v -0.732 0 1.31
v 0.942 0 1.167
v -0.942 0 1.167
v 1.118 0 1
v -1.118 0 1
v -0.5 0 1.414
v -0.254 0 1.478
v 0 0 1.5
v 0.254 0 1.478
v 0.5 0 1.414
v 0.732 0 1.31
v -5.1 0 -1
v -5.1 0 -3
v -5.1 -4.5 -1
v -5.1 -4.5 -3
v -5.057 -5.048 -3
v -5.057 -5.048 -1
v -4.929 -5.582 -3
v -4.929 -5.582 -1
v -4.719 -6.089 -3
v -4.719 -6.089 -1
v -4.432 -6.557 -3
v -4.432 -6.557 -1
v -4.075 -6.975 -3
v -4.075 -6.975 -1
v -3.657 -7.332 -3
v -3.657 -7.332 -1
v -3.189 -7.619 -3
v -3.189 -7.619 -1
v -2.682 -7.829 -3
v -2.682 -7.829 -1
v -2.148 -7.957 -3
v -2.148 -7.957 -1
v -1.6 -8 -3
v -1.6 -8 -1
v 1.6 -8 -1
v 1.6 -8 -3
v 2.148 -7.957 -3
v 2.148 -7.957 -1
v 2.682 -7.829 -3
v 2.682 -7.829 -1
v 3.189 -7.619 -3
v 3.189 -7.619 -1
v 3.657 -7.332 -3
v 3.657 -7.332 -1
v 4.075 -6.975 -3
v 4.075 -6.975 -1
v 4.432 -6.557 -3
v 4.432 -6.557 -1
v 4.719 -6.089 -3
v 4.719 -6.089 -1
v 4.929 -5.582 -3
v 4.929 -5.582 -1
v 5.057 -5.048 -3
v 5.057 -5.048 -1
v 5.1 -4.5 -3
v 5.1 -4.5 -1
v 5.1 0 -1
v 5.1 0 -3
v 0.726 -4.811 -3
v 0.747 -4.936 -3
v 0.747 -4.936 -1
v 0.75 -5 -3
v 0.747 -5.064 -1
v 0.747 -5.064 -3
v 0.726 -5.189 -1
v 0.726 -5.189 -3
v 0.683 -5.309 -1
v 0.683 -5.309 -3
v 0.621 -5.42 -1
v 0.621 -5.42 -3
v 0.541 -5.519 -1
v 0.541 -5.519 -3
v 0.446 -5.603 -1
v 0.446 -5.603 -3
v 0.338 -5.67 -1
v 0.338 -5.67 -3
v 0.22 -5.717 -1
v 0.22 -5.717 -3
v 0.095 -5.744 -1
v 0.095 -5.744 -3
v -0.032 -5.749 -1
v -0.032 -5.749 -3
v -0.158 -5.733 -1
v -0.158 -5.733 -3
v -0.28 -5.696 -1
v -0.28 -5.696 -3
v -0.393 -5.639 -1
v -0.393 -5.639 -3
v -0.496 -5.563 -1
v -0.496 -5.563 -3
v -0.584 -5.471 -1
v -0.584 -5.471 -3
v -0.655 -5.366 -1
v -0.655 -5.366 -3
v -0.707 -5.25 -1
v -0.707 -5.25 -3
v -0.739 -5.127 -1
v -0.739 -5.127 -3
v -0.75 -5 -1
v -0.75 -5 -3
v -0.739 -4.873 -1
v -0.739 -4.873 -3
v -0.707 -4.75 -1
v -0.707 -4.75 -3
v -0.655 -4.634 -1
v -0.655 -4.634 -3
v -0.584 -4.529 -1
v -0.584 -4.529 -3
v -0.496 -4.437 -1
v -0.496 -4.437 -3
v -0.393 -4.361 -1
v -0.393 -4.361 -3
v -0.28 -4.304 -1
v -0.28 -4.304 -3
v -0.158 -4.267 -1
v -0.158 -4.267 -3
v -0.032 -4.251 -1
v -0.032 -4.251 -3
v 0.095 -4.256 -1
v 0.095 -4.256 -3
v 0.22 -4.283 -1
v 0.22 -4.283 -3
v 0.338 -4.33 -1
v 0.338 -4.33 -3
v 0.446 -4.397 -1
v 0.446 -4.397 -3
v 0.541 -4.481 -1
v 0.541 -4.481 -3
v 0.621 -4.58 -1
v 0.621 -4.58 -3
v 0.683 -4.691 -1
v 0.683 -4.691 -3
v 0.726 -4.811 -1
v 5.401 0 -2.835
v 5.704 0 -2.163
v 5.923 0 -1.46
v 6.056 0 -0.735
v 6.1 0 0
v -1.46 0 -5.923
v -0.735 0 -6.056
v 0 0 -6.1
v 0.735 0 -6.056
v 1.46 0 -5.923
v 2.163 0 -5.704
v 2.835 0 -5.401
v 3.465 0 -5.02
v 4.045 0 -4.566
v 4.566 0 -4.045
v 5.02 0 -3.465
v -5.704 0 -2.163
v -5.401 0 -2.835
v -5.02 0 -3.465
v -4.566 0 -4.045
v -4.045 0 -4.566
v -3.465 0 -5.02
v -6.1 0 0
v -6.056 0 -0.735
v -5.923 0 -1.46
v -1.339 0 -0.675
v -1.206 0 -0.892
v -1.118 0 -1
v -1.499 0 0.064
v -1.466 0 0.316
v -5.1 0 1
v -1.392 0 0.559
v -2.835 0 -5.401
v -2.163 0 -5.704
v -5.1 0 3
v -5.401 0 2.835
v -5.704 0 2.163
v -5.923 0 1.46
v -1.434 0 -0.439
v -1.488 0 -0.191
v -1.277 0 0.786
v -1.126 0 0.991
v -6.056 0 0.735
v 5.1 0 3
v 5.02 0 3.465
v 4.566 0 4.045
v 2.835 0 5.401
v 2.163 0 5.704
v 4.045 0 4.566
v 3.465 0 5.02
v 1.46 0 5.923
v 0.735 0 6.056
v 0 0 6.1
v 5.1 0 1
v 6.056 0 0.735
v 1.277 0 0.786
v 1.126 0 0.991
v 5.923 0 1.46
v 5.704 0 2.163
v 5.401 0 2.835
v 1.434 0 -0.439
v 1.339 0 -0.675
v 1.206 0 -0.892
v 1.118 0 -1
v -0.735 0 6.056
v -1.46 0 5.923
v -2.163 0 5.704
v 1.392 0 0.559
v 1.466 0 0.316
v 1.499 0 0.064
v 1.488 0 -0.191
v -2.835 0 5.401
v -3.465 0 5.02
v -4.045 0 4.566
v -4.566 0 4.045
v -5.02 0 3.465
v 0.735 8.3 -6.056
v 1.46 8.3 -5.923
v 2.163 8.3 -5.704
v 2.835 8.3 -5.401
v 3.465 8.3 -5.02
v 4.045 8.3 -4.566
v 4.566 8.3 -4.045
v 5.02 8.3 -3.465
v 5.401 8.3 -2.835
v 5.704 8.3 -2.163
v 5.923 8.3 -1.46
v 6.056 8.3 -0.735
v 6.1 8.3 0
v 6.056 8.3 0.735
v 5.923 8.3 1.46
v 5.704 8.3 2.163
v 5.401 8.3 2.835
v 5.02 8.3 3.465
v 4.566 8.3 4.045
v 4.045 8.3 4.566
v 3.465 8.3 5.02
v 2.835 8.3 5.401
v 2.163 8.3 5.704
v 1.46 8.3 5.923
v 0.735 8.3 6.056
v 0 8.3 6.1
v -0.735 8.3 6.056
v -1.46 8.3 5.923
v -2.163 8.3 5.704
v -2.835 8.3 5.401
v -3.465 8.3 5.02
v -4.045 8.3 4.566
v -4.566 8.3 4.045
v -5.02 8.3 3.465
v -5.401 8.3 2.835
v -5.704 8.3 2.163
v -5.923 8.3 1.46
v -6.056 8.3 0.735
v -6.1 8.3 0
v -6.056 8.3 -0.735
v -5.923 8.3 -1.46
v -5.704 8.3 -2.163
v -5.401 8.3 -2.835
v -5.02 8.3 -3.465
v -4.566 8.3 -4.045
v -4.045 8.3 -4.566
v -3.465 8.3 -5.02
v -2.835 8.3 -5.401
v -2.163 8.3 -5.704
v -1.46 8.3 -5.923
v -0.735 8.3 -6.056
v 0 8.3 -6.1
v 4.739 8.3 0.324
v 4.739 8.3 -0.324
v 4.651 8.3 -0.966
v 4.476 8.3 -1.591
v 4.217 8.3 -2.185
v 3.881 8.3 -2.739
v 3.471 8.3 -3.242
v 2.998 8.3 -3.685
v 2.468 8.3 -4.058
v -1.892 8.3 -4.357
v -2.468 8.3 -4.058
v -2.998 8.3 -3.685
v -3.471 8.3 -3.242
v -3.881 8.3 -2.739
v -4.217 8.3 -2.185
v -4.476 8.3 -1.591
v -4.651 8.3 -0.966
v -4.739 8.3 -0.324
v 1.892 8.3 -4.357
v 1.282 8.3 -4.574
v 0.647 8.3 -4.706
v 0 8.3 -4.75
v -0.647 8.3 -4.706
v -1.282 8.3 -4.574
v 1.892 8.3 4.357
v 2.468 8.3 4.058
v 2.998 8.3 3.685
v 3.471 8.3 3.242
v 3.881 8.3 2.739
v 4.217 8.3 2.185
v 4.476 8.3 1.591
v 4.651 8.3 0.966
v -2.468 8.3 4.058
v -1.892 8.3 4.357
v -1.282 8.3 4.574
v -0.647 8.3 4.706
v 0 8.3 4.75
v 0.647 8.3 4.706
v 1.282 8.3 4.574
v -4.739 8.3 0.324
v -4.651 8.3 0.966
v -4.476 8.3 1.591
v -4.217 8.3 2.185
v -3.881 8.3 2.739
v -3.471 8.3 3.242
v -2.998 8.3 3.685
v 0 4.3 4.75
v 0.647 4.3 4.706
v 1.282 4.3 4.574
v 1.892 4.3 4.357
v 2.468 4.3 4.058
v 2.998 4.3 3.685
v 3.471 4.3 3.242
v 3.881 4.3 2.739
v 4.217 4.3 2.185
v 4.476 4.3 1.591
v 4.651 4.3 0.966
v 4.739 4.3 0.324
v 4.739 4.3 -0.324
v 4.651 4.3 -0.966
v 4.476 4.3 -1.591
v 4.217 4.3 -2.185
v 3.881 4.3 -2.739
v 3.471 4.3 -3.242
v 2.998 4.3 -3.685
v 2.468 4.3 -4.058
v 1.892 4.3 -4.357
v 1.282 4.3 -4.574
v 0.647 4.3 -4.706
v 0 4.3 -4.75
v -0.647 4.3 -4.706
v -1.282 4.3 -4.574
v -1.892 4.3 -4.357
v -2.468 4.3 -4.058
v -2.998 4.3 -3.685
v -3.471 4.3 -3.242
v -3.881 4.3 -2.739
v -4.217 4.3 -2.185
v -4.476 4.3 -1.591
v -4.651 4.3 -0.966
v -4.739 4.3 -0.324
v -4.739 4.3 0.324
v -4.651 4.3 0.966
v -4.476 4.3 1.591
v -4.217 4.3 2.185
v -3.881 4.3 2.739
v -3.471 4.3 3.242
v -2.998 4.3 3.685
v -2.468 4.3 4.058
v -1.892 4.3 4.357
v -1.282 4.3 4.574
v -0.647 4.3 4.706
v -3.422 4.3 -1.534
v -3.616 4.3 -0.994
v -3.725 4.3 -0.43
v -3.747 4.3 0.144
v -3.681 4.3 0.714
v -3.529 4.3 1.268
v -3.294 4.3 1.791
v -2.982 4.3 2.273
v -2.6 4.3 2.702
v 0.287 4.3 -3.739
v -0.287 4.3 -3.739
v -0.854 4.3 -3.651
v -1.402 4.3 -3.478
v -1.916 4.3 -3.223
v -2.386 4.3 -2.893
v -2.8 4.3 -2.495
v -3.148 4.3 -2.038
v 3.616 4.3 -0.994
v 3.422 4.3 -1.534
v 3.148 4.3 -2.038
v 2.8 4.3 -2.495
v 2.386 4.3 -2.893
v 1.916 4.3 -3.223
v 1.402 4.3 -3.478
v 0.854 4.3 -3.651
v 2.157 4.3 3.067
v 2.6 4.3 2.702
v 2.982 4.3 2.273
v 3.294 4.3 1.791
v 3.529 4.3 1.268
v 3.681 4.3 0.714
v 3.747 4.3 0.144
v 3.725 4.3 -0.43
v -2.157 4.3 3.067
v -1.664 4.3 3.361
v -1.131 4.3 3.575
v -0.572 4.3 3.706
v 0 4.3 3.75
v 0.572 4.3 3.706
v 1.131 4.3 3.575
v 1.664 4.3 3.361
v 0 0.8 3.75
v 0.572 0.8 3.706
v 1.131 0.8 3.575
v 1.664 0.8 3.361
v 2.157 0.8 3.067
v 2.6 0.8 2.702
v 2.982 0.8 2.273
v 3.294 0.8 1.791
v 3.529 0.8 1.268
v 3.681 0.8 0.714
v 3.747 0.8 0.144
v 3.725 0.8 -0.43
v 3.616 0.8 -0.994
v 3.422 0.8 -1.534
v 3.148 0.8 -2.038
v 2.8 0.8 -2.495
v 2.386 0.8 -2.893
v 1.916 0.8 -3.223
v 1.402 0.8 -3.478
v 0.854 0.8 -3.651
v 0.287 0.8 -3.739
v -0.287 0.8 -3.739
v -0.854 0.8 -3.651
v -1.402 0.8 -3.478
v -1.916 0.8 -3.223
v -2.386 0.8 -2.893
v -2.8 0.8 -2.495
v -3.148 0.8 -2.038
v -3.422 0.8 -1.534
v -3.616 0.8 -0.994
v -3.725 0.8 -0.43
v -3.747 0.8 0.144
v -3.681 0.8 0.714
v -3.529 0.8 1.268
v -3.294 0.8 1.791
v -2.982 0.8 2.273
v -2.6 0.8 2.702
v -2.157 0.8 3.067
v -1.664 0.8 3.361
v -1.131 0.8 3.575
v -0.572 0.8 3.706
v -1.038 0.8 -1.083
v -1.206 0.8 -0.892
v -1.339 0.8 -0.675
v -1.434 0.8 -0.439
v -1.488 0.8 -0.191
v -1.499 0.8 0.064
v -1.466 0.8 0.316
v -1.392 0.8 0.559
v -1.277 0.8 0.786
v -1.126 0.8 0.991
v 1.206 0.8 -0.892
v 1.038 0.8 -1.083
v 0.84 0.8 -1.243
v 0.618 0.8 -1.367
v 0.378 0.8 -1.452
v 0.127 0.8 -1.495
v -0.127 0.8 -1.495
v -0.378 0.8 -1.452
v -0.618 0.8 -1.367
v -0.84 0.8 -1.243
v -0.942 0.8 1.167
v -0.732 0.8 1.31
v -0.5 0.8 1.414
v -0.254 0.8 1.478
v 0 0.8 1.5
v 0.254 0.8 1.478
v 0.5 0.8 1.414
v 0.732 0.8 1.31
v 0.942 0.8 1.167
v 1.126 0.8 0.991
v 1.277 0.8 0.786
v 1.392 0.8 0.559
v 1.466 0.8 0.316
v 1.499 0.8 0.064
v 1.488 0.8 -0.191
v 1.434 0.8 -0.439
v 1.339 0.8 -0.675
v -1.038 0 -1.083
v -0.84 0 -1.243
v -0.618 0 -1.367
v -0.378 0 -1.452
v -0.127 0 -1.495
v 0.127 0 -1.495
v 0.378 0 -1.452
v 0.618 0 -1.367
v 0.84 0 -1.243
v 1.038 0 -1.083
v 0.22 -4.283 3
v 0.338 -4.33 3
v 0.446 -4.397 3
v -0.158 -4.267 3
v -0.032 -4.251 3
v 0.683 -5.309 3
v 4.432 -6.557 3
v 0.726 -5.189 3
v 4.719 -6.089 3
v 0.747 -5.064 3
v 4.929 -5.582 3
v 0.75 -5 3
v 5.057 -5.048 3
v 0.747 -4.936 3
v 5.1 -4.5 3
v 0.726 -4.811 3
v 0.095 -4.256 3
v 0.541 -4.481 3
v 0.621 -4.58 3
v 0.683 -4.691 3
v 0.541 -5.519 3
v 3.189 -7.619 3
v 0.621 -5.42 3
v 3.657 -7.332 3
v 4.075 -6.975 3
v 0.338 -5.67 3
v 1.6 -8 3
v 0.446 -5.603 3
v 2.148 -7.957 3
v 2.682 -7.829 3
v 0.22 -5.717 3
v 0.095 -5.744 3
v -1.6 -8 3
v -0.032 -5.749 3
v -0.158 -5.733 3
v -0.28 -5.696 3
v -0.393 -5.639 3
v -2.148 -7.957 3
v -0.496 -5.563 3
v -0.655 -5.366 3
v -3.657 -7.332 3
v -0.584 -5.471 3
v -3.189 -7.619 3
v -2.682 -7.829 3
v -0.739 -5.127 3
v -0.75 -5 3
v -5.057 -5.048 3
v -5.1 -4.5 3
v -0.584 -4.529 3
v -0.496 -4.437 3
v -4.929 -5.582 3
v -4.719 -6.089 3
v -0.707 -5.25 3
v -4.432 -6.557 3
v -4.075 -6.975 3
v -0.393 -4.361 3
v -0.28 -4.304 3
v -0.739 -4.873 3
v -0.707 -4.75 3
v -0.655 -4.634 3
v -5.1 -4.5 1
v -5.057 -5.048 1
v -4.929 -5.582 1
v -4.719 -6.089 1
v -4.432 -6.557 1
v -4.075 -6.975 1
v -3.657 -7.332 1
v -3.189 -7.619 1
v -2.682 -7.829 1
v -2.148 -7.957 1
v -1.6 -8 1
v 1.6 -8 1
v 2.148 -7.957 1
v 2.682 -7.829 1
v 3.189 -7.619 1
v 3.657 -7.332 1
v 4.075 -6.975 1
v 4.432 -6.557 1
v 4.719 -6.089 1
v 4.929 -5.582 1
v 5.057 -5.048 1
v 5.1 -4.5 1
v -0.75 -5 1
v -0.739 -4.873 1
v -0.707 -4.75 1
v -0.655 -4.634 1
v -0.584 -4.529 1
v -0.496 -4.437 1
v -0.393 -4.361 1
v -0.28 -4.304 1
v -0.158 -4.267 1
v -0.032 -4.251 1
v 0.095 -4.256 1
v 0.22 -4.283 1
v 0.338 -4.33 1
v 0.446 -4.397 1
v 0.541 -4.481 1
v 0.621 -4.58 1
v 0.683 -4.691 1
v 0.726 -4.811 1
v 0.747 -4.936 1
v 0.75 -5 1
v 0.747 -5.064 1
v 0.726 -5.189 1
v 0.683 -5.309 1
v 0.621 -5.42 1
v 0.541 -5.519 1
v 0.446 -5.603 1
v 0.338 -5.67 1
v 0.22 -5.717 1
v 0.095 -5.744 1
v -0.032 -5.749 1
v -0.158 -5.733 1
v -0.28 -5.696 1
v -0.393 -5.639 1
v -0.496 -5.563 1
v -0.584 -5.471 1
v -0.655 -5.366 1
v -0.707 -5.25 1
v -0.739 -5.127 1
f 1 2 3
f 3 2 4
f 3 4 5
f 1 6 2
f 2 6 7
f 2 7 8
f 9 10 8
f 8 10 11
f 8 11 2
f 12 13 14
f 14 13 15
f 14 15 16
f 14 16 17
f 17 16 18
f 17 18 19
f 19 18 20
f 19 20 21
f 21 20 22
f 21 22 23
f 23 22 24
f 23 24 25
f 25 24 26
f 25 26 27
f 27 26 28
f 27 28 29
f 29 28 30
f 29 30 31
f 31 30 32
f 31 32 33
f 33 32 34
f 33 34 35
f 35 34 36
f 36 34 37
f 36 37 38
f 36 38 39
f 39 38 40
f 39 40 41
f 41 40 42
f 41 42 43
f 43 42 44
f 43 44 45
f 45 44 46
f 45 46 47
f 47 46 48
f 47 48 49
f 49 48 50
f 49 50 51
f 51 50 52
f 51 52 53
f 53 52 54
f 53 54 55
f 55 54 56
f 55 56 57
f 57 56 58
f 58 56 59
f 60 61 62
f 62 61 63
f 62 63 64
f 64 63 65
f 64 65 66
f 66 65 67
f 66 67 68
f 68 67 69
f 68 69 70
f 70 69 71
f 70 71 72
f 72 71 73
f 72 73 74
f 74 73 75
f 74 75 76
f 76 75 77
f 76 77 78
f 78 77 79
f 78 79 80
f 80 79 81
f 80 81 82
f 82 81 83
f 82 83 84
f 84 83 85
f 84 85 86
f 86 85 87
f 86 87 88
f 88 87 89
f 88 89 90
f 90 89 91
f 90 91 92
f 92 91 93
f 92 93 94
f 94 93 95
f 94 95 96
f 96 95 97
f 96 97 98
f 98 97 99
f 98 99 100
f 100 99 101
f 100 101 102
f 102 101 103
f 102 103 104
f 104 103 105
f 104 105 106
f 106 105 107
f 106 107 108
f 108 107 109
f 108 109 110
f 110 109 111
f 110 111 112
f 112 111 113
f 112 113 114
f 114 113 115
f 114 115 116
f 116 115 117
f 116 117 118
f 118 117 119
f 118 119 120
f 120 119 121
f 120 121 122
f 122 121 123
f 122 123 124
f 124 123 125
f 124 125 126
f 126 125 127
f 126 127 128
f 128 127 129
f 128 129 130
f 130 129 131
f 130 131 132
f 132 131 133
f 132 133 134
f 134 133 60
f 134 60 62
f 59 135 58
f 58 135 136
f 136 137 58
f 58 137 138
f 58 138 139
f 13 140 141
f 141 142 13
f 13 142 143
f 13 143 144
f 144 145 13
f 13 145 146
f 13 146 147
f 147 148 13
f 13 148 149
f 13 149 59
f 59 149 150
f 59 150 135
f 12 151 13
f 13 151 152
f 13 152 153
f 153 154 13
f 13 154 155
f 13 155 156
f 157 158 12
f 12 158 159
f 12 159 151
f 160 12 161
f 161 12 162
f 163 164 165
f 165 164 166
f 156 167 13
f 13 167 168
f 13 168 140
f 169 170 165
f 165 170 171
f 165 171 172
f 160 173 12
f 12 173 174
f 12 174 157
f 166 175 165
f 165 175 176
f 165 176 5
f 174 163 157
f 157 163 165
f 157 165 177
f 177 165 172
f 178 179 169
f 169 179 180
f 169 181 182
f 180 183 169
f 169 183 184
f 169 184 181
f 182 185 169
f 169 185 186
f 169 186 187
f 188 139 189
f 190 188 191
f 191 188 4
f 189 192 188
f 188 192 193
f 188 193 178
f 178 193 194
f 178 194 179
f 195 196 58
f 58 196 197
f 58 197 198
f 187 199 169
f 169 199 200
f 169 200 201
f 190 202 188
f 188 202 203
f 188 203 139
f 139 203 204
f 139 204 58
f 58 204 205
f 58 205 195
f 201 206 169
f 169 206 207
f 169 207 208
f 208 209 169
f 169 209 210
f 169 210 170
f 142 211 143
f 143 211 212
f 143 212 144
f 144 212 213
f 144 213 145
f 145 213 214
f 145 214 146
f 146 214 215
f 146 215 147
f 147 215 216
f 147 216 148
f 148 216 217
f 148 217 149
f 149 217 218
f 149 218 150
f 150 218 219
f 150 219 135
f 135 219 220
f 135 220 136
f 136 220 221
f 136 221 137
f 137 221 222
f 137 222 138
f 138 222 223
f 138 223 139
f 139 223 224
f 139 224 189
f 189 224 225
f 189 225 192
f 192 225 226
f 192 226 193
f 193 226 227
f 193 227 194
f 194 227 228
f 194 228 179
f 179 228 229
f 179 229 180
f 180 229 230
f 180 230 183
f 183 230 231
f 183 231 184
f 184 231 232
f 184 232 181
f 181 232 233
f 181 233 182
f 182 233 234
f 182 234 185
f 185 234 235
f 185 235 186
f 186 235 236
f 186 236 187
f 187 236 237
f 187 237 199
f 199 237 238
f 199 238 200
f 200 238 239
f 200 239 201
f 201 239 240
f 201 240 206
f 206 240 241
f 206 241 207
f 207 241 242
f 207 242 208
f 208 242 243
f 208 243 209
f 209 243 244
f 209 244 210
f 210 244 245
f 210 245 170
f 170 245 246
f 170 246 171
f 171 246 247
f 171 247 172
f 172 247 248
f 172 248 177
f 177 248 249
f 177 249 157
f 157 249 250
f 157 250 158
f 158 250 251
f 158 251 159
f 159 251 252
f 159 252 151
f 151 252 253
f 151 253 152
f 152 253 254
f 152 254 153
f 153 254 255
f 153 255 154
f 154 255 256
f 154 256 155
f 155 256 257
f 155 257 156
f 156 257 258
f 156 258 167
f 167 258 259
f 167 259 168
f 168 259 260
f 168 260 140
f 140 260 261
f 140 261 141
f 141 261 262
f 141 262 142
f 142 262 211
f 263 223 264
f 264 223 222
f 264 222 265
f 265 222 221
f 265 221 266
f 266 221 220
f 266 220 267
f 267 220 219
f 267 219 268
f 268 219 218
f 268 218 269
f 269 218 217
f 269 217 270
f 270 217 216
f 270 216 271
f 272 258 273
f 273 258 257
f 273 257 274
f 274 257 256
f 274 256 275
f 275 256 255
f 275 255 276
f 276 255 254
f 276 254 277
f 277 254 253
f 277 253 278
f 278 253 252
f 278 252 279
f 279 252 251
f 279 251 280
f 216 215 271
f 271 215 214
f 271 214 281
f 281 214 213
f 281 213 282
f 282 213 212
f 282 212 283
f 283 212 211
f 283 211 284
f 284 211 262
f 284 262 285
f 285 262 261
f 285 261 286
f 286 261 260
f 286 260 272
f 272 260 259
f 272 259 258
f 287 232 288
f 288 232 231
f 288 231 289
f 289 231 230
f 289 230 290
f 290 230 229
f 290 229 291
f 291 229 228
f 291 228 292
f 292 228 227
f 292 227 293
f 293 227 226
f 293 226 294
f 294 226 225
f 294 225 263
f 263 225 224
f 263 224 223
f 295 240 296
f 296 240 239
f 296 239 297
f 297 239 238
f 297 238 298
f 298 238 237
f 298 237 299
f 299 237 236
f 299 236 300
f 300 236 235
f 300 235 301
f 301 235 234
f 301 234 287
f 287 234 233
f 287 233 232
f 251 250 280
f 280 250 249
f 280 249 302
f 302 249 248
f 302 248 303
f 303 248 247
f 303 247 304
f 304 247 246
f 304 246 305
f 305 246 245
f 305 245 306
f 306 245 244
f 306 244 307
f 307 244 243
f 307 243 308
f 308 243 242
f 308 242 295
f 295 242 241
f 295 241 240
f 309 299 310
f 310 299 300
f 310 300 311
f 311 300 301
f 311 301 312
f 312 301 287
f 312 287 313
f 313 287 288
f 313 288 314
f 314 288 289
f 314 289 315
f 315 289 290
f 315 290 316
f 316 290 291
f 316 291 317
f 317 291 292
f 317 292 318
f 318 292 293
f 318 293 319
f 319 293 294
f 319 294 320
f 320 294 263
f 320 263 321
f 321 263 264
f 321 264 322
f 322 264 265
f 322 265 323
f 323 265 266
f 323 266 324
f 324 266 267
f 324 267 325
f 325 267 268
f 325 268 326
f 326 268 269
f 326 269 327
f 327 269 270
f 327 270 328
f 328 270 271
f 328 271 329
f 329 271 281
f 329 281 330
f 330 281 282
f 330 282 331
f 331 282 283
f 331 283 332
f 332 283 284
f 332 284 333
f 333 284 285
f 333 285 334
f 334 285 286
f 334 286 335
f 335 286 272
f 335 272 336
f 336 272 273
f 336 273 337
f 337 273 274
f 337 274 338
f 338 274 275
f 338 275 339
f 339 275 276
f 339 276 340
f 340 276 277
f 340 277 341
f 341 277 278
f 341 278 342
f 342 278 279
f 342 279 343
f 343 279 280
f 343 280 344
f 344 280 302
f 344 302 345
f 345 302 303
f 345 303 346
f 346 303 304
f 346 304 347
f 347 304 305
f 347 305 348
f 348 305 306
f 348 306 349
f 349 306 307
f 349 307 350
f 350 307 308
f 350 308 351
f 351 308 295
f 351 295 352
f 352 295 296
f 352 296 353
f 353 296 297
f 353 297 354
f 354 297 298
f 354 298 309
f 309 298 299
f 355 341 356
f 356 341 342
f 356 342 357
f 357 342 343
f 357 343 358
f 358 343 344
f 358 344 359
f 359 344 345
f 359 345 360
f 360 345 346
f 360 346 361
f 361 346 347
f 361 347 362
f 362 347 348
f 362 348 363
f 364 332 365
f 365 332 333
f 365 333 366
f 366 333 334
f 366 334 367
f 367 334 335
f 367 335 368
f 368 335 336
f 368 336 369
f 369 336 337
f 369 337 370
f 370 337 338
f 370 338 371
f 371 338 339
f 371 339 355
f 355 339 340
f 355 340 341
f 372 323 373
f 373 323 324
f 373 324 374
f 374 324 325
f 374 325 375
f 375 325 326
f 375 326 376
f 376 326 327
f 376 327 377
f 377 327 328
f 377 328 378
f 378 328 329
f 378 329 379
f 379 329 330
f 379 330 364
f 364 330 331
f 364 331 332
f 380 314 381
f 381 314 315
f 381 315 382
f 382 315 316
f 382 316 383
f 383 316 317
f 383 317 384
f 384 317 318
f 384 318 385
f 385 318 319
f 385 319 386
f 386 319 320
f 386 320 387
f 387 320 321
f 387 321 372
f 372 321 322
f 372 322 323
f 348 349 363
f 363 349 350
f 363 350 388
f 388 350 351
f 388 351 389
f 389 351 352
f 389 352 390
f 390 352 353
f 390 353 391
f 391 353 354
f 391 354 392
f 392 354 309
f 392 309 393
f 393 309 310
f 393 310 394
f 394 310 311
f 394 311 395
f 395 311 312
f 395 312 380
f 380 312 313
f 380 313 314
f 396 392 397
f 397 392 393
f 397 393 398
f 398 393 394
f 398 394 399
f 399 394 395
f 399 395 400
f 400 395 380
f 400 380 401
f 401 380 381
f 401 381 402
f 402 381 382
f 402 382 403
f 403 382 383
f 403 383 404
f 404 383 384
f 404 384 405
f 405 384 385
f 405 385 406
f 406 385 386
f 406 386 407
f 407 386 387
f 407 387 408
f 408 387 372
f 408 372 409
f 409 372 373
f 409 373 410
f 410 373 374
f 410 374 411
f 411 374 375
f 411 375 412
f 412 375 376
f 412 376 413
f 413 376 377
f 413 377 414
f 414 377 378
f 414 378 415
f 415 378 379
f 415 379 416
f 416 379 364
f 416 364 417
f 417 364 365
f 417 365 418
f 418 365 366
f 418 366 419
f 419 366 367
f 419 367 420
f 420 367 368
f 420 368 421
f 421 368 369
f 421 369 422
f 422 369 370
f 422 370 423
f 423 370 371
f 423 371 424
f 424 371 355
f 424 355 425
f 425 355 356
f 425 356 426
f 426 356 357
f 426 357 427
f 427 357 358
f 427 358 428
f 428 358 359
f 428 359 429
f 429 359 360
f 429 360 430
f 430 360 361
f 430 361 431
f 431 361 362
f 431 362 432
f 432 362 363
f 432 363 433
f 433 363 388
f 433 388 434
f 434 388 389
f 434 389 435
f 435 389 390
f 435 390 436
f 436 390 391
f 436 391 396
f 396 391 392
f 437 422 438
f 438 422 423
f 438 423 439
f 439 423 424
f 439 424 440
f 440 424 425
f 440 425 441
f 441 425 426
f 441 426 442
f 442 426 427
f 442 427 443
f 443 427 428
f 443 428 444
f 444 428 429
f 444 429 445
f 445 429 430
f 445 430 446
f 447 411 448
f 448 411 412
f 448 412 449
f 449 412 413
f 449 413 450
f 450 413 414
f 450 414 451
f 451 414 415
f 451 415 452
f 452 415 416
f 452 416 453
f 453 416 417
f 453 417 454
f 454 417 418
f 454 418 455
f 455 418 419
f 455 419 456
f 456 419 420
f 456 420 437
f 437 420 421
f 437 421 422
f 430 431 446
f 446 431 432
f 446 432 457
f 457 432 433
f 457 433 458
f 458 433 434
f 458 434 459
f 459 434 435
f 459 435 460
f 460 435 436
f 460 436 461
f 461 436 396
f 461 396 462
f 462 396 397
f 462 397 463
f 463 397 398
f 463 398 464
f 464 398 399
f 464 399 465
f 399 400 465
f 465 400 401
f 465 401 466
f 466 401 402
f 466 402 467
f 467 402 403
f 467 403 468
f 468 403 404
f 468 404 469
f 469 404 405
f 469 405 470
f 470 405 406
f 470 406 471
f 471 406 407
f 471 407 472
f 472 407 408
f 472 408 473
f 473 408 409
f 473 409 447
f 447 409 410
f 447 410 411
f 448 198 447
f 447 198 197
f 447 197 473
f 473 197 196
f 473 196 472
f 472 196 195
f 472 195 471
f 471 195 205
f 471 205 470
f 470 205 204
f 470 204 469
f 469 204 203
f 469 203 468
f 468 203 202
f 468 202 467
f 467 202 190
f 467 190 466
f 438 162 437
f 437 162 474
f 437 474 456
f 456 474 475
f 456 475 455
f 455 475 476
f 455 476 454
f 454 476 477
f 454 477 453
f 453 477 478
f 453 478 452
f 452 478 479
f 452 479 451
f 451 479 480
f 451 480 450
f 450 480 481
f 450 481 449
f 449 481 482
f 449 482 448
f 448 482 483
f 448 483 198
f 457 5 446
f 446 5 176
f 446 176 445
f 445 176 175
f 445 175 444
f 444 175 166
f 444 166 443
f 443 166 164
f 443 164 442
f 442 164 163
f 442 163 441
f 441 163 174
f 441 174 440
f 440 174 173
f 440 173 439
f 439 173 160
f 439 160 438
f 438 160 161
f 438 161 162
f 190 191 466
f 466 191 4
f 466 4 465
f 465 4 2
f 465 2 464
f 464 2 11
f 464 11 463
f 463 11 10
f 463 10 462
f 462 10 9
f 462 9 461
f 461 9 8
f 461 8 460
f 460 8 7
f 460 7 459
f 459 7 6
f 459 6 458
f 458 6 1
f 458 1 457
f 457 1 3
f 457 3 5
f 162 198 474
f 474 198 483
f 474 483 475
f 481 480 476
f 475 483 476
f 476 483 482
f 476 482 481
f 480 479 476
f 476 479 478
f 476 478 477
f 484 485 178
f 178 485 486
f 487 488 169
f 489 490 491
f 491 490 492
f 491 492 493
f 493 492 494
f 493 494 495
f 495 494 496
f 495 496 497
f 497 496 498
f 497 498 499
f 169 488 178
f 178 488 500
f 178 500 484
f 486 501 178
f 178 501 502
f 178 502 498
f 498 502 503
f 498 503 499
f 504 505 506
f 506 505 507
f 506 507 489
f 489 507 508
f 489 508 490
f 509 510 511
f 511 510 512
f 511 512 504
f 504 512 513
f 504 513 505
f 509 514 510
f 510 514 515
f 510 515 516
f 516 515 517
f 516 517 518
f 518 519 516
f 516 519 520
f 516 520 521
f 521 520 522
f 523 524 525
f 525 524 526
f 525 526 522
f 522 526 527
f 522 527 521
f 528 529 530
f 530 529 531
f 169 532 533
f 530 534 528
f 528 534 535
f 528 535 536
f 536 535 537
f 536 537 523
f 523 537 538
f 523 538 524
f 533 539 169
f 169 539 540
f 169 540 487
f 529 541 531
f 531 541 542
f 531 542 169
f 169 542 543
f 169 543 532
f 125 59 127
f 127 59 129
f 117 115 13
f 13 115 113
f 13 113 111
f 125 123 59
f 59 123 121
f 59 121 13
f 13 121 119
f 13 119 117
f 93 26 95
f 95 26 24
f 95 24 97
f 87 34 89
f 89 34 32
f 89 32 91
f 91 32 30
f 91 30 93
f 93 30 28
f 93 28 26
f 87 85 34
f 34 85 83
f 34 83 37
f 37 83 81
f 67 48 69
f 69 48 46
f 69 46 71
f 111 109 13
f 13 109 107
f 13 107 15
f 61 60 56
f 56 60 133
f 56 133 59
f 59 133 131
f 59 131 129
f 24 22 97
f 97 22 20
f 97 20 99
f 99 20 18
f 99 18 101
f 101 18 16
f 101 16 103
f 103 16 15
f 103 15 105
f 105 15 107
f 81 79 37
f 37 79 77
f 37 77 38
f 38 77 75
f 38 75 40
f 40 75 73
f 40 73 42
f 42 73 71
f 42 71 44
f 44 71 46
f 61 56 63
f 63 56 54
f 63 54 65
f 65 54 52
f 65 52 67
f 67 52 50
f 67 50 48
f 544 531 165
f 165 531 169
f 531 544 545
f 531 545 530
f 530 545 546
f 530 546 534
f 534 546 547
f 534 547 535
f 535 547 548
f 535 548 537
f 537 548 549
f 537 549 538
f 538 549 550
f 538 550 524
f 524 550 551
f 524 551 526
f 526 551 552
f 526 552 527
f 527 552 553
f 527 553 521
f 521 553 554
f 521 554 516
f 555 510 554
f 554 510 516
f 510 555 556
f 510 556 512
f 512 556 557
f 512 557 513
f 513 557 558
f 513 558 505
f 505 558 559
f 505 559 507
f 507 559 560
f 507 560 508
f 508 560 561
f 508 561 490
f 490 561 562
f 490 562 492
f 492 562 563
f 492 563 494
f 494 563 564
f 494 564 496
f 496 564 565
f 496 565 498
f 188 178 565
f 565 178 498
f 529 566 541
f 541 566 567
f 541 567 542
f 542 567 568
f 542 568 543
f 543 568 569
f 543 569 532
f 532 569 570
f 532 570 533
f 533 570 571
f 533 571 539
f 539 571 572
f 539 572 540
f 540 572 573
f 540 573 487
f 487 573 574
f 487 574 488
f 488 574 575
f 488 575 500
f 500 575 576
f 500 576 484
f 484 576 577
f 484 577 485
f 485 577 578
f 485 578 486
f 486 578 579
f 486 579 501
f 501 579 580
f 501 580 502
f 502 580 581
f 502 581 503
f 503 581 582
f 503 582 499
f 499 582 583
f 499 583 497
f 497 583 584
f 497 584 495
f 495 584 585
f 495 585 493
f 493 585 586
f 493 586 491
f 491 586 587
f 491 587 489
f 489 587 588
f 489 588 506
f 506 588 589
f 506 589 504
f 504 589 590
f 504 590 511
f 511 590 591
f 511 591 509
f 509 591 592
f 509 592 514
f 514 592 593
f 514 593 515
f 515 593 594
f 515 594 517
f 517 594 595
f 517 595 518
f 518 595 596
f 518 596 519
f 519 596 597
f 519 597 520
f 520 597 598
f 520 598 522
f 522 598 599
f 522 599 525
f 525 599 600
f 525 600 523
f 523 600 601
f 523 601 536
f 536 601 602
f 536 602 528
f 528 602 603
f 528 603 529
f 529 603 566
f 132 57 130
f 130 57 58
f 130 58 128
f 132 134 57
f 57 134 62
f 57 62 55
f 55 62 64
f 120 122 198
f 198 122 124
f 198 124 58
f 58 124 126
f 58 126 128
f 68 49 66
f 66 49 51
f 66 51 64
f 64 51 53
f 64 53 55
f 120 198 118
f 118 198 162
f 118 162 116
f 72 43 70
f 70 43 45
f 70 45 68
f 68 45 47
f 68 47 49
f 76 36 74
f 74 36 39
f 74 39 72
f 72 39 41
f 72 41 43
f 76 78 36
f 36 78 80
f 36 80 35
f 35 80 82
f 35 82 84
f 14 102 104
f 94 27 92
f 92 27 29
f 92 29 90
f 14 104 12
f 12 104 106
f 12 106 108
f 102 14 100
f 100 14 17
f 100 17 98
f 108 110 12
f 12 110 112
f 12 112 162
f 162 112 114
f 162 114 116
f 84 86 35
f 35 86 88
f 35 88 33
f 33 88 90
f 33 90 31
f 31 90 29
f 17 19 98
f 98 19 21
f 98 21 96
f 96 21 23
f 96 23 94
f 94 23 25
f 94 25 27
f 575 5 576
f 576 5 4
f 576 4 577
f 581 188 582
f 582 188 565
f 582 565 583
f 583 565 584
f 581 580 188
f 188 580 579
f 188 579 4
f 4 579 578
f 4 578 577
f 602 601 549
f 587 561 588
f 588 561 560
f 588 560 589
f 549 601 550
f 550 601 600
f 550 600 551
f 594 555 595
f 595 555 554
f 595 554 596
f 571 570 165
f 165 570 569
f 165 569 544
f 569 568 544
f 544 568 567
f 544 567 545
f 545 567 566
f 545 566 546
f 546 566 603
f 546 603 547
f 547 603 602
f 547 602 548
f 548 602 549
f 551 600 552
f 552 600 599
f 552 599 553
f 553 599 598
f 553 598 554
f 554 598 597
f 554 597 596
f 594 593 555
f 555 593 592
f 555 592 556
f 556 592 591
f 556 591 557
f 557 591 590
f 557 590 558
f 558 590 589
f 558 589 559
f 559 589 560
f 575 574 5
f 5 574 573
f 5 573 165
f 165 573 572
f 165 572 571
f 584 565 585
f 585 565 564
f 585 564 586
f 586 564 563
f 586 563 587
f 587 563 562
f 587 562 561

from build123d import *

# Parameters (mm, degrees)
SKETCH_1_R          = 6.1
EXTRUDE_1_DEPTH     = 8.3
SKETCH_2_R          = 4.75
CUT_EXTRUDE_1_DEPTH = 4
SKETCH_3_R          = 3.75
CUT_EXTRUDE_2_DEPTH = 3.5
SKETCH_4_R          = 1.5
CUT_EXTRUDE_3_DEPTH = 4
EXTRUDE_3_DEPTH     = 3
SKETCH_6_R          = 9.011135206
SKETCH_6_R_2        = 6.1
CUT_EXTRUDE_4_DEPTH = 32
SKETCH_7_R          = 0.5
CUT_EXTRUDE_6_DEPTH = 12
SKETCH_8_W          = 2
SKETCH_8_H          = 6.97178126
CUT_EXTRUDE_7_DEPTH = 10
SKETCH_9_W          = 7.844147965
SKETCH_9_H          = 6.877415643
CUT_EXTRUDE_8_DEPTH = 10
SKETCH_10_R         = 0.75
EXTRUDE_4_DEPTH     = 3
SKETCH_11_W         = 15.692438898
SKETCH_11_H         = 2
CUT_EXTRUDE_9_DEPTH = 8


with BuildPart() as part:
    # 草图1 → 凸台-拉伸1 (new body)
    with BuildSketch(Plane(origin=(0, 0, 0), x_dir=(1, 0, 0), z_dir=(0, 1, 0))):
        Circle(SKETCH_1_R)
    extrude(amount=EXTRUDE_1_DEPTH)

    # 草图2 → 切除-拉伸1 (cut)
    with BuildSketch(Plane(origin=(0, 8.3, 0), x_dir=(1, 0, 0), z_dir=(0, 1, 0))):
        Circle(SKETCH_2_R)
    extrude(amount=-CUT_EXTRUDE_1_DEPTH, mode=Mode.SUBTRACT)

    # 草图3 → 切除-拉伸2 (cut)
    with BuildSketch(Plane(origin=(0, 4.3, 0), x_dir=(1, 0, 0), z_dir=(0, 1, 0))):
        Circle(SKETCH_3_R)
    extrude(amount=-CUT_EXTRUDE_2_DEPTH, mode=Mode.SUBTRACT)

    # 草图4 → 切除-拉伸3 (cut)
    with BuildSketch(Plane(origin=(0, 0.8, 0), x_dir=(1, 0, 0), z_dir=(0, 1, 0))):
        Circle(SKETCH_4_R)
    extrude(amount=-CUT_EXTRUDE_3_DEPTH, mode=Mode.SUBTRACT)

    # 草图5 → 凸台-拉伸3 (add, symmetric)
    with BuildSketch(Plane.XY):
        with BuildLine():
            Line((-6.1, 0), (-2.1, 0))
            Line((-2.1, 0), (-2.1, -4.1))
            ThreePointArc((-2.1, -4.1), (-2.656497116, -5.443502884), (-4, -6))
            Line((-4, -6), (-4.2, -6))
            ThreePointArc((-4.2, -6), (-5.543502884, -5.443502884), (-6.1, -4.1))
            Line((-6.1, -4.1), (-6.1, 0))
        make_face()
    extrude(amount=EXTRUDE_3_DEPTH, both=True)

    # 草图6 → 切除-拉伸4 (cut)
    with BuildSketch(Plane(origin=(0, 8.3, 0), x_dir=(1, 0, 0), z_dir=(0, 1, 0))):
        Circle(SKETCH_6_R)
        Circle(SKETCH_6_R_2, mode=Mode.SUBTRACT)
    extrude(amount=-CUT_EXTRUDE_4_DEPTH, mode=Mode.SUBTRACT)

    # 草图7 → 切除-拉伸6 (cut)
    with BuildSketch(Plane.XY.offset(3)):
        with Locations((-4.1, -3.8)):
            Circle(SKETCH_7_R)
    extrude(amount=-CUT_EXTRUDE_6_DEPTH, mode=Mode.SUBTRACT)

    # 草图8 → 切除-拉伸7 (cut)
    with BuildSketch(Plane(origin=(-2.1, 0, 0), x_dir=(0, 0, -1), z_dir=(1, 0, 0))):
        with Locations((0, -3.48589063)):
            Rectangle(SKETCH_8_W, SKETCH_8_H)
    extrude(amount=-CUT_EXTRUDE_7_DEPTH, mode=Mode.SUBTRACT)

    # 草图9 → 切除-拉伸8 (cut)
    with BuildSketch(Plane(origin=(0, 0, -3), x_dir=(-1, 0, 0), z_dir=(0, 0, -1))):
        with Locations((6.022073983, -3.438707822)):
            Rectangle(SKETCH_9_W, SKETCH_9_H)
    extrude(amount=-CUT_EXTRUDE_8_DEPTH, mode=Mode.SUBTRACT)

    # 草图10 → 凸台-拉伸4 (add, symmetric)
    with BuildSketch(Plane.XY):
        with BuildLine():
            Line((-5.1, 0), (5.1, 0))
            Line((5.1, 0), (5.1, -4.5))
            ThreePointArc((5.1, -4.5), (4.074873734, -6.974873734), (1.6, -8))
            Line((1.6, -8), (-1.6, -8))
            ThreePointArc((-1.6, -8), (-4.074873734, -6.974873734), (-5.1, -4.5))
            Line((-5.1, -4.5), (-5.1, 0))
        make_face()
        with Locations((0, -5)):
            Circle(SKETCH_10_R, mode=Mode.SUBTRACT)
    extrude(amount=EXTRUDE_4_DEPTH, both=True)

    # 草图11 → 切除-拉伸9 (cut)
    with BuildSketch(Plane.XZ.offset(8)):
        with Locations((0.217533809, 0)):
            Rectangle(SKETCH_11_W, SKETCH_11_H)
    extrude(amount=-CUT_EXTRUDE_9_DEPTH, mode=Mode.SUBTRACT)


solid = part.part
